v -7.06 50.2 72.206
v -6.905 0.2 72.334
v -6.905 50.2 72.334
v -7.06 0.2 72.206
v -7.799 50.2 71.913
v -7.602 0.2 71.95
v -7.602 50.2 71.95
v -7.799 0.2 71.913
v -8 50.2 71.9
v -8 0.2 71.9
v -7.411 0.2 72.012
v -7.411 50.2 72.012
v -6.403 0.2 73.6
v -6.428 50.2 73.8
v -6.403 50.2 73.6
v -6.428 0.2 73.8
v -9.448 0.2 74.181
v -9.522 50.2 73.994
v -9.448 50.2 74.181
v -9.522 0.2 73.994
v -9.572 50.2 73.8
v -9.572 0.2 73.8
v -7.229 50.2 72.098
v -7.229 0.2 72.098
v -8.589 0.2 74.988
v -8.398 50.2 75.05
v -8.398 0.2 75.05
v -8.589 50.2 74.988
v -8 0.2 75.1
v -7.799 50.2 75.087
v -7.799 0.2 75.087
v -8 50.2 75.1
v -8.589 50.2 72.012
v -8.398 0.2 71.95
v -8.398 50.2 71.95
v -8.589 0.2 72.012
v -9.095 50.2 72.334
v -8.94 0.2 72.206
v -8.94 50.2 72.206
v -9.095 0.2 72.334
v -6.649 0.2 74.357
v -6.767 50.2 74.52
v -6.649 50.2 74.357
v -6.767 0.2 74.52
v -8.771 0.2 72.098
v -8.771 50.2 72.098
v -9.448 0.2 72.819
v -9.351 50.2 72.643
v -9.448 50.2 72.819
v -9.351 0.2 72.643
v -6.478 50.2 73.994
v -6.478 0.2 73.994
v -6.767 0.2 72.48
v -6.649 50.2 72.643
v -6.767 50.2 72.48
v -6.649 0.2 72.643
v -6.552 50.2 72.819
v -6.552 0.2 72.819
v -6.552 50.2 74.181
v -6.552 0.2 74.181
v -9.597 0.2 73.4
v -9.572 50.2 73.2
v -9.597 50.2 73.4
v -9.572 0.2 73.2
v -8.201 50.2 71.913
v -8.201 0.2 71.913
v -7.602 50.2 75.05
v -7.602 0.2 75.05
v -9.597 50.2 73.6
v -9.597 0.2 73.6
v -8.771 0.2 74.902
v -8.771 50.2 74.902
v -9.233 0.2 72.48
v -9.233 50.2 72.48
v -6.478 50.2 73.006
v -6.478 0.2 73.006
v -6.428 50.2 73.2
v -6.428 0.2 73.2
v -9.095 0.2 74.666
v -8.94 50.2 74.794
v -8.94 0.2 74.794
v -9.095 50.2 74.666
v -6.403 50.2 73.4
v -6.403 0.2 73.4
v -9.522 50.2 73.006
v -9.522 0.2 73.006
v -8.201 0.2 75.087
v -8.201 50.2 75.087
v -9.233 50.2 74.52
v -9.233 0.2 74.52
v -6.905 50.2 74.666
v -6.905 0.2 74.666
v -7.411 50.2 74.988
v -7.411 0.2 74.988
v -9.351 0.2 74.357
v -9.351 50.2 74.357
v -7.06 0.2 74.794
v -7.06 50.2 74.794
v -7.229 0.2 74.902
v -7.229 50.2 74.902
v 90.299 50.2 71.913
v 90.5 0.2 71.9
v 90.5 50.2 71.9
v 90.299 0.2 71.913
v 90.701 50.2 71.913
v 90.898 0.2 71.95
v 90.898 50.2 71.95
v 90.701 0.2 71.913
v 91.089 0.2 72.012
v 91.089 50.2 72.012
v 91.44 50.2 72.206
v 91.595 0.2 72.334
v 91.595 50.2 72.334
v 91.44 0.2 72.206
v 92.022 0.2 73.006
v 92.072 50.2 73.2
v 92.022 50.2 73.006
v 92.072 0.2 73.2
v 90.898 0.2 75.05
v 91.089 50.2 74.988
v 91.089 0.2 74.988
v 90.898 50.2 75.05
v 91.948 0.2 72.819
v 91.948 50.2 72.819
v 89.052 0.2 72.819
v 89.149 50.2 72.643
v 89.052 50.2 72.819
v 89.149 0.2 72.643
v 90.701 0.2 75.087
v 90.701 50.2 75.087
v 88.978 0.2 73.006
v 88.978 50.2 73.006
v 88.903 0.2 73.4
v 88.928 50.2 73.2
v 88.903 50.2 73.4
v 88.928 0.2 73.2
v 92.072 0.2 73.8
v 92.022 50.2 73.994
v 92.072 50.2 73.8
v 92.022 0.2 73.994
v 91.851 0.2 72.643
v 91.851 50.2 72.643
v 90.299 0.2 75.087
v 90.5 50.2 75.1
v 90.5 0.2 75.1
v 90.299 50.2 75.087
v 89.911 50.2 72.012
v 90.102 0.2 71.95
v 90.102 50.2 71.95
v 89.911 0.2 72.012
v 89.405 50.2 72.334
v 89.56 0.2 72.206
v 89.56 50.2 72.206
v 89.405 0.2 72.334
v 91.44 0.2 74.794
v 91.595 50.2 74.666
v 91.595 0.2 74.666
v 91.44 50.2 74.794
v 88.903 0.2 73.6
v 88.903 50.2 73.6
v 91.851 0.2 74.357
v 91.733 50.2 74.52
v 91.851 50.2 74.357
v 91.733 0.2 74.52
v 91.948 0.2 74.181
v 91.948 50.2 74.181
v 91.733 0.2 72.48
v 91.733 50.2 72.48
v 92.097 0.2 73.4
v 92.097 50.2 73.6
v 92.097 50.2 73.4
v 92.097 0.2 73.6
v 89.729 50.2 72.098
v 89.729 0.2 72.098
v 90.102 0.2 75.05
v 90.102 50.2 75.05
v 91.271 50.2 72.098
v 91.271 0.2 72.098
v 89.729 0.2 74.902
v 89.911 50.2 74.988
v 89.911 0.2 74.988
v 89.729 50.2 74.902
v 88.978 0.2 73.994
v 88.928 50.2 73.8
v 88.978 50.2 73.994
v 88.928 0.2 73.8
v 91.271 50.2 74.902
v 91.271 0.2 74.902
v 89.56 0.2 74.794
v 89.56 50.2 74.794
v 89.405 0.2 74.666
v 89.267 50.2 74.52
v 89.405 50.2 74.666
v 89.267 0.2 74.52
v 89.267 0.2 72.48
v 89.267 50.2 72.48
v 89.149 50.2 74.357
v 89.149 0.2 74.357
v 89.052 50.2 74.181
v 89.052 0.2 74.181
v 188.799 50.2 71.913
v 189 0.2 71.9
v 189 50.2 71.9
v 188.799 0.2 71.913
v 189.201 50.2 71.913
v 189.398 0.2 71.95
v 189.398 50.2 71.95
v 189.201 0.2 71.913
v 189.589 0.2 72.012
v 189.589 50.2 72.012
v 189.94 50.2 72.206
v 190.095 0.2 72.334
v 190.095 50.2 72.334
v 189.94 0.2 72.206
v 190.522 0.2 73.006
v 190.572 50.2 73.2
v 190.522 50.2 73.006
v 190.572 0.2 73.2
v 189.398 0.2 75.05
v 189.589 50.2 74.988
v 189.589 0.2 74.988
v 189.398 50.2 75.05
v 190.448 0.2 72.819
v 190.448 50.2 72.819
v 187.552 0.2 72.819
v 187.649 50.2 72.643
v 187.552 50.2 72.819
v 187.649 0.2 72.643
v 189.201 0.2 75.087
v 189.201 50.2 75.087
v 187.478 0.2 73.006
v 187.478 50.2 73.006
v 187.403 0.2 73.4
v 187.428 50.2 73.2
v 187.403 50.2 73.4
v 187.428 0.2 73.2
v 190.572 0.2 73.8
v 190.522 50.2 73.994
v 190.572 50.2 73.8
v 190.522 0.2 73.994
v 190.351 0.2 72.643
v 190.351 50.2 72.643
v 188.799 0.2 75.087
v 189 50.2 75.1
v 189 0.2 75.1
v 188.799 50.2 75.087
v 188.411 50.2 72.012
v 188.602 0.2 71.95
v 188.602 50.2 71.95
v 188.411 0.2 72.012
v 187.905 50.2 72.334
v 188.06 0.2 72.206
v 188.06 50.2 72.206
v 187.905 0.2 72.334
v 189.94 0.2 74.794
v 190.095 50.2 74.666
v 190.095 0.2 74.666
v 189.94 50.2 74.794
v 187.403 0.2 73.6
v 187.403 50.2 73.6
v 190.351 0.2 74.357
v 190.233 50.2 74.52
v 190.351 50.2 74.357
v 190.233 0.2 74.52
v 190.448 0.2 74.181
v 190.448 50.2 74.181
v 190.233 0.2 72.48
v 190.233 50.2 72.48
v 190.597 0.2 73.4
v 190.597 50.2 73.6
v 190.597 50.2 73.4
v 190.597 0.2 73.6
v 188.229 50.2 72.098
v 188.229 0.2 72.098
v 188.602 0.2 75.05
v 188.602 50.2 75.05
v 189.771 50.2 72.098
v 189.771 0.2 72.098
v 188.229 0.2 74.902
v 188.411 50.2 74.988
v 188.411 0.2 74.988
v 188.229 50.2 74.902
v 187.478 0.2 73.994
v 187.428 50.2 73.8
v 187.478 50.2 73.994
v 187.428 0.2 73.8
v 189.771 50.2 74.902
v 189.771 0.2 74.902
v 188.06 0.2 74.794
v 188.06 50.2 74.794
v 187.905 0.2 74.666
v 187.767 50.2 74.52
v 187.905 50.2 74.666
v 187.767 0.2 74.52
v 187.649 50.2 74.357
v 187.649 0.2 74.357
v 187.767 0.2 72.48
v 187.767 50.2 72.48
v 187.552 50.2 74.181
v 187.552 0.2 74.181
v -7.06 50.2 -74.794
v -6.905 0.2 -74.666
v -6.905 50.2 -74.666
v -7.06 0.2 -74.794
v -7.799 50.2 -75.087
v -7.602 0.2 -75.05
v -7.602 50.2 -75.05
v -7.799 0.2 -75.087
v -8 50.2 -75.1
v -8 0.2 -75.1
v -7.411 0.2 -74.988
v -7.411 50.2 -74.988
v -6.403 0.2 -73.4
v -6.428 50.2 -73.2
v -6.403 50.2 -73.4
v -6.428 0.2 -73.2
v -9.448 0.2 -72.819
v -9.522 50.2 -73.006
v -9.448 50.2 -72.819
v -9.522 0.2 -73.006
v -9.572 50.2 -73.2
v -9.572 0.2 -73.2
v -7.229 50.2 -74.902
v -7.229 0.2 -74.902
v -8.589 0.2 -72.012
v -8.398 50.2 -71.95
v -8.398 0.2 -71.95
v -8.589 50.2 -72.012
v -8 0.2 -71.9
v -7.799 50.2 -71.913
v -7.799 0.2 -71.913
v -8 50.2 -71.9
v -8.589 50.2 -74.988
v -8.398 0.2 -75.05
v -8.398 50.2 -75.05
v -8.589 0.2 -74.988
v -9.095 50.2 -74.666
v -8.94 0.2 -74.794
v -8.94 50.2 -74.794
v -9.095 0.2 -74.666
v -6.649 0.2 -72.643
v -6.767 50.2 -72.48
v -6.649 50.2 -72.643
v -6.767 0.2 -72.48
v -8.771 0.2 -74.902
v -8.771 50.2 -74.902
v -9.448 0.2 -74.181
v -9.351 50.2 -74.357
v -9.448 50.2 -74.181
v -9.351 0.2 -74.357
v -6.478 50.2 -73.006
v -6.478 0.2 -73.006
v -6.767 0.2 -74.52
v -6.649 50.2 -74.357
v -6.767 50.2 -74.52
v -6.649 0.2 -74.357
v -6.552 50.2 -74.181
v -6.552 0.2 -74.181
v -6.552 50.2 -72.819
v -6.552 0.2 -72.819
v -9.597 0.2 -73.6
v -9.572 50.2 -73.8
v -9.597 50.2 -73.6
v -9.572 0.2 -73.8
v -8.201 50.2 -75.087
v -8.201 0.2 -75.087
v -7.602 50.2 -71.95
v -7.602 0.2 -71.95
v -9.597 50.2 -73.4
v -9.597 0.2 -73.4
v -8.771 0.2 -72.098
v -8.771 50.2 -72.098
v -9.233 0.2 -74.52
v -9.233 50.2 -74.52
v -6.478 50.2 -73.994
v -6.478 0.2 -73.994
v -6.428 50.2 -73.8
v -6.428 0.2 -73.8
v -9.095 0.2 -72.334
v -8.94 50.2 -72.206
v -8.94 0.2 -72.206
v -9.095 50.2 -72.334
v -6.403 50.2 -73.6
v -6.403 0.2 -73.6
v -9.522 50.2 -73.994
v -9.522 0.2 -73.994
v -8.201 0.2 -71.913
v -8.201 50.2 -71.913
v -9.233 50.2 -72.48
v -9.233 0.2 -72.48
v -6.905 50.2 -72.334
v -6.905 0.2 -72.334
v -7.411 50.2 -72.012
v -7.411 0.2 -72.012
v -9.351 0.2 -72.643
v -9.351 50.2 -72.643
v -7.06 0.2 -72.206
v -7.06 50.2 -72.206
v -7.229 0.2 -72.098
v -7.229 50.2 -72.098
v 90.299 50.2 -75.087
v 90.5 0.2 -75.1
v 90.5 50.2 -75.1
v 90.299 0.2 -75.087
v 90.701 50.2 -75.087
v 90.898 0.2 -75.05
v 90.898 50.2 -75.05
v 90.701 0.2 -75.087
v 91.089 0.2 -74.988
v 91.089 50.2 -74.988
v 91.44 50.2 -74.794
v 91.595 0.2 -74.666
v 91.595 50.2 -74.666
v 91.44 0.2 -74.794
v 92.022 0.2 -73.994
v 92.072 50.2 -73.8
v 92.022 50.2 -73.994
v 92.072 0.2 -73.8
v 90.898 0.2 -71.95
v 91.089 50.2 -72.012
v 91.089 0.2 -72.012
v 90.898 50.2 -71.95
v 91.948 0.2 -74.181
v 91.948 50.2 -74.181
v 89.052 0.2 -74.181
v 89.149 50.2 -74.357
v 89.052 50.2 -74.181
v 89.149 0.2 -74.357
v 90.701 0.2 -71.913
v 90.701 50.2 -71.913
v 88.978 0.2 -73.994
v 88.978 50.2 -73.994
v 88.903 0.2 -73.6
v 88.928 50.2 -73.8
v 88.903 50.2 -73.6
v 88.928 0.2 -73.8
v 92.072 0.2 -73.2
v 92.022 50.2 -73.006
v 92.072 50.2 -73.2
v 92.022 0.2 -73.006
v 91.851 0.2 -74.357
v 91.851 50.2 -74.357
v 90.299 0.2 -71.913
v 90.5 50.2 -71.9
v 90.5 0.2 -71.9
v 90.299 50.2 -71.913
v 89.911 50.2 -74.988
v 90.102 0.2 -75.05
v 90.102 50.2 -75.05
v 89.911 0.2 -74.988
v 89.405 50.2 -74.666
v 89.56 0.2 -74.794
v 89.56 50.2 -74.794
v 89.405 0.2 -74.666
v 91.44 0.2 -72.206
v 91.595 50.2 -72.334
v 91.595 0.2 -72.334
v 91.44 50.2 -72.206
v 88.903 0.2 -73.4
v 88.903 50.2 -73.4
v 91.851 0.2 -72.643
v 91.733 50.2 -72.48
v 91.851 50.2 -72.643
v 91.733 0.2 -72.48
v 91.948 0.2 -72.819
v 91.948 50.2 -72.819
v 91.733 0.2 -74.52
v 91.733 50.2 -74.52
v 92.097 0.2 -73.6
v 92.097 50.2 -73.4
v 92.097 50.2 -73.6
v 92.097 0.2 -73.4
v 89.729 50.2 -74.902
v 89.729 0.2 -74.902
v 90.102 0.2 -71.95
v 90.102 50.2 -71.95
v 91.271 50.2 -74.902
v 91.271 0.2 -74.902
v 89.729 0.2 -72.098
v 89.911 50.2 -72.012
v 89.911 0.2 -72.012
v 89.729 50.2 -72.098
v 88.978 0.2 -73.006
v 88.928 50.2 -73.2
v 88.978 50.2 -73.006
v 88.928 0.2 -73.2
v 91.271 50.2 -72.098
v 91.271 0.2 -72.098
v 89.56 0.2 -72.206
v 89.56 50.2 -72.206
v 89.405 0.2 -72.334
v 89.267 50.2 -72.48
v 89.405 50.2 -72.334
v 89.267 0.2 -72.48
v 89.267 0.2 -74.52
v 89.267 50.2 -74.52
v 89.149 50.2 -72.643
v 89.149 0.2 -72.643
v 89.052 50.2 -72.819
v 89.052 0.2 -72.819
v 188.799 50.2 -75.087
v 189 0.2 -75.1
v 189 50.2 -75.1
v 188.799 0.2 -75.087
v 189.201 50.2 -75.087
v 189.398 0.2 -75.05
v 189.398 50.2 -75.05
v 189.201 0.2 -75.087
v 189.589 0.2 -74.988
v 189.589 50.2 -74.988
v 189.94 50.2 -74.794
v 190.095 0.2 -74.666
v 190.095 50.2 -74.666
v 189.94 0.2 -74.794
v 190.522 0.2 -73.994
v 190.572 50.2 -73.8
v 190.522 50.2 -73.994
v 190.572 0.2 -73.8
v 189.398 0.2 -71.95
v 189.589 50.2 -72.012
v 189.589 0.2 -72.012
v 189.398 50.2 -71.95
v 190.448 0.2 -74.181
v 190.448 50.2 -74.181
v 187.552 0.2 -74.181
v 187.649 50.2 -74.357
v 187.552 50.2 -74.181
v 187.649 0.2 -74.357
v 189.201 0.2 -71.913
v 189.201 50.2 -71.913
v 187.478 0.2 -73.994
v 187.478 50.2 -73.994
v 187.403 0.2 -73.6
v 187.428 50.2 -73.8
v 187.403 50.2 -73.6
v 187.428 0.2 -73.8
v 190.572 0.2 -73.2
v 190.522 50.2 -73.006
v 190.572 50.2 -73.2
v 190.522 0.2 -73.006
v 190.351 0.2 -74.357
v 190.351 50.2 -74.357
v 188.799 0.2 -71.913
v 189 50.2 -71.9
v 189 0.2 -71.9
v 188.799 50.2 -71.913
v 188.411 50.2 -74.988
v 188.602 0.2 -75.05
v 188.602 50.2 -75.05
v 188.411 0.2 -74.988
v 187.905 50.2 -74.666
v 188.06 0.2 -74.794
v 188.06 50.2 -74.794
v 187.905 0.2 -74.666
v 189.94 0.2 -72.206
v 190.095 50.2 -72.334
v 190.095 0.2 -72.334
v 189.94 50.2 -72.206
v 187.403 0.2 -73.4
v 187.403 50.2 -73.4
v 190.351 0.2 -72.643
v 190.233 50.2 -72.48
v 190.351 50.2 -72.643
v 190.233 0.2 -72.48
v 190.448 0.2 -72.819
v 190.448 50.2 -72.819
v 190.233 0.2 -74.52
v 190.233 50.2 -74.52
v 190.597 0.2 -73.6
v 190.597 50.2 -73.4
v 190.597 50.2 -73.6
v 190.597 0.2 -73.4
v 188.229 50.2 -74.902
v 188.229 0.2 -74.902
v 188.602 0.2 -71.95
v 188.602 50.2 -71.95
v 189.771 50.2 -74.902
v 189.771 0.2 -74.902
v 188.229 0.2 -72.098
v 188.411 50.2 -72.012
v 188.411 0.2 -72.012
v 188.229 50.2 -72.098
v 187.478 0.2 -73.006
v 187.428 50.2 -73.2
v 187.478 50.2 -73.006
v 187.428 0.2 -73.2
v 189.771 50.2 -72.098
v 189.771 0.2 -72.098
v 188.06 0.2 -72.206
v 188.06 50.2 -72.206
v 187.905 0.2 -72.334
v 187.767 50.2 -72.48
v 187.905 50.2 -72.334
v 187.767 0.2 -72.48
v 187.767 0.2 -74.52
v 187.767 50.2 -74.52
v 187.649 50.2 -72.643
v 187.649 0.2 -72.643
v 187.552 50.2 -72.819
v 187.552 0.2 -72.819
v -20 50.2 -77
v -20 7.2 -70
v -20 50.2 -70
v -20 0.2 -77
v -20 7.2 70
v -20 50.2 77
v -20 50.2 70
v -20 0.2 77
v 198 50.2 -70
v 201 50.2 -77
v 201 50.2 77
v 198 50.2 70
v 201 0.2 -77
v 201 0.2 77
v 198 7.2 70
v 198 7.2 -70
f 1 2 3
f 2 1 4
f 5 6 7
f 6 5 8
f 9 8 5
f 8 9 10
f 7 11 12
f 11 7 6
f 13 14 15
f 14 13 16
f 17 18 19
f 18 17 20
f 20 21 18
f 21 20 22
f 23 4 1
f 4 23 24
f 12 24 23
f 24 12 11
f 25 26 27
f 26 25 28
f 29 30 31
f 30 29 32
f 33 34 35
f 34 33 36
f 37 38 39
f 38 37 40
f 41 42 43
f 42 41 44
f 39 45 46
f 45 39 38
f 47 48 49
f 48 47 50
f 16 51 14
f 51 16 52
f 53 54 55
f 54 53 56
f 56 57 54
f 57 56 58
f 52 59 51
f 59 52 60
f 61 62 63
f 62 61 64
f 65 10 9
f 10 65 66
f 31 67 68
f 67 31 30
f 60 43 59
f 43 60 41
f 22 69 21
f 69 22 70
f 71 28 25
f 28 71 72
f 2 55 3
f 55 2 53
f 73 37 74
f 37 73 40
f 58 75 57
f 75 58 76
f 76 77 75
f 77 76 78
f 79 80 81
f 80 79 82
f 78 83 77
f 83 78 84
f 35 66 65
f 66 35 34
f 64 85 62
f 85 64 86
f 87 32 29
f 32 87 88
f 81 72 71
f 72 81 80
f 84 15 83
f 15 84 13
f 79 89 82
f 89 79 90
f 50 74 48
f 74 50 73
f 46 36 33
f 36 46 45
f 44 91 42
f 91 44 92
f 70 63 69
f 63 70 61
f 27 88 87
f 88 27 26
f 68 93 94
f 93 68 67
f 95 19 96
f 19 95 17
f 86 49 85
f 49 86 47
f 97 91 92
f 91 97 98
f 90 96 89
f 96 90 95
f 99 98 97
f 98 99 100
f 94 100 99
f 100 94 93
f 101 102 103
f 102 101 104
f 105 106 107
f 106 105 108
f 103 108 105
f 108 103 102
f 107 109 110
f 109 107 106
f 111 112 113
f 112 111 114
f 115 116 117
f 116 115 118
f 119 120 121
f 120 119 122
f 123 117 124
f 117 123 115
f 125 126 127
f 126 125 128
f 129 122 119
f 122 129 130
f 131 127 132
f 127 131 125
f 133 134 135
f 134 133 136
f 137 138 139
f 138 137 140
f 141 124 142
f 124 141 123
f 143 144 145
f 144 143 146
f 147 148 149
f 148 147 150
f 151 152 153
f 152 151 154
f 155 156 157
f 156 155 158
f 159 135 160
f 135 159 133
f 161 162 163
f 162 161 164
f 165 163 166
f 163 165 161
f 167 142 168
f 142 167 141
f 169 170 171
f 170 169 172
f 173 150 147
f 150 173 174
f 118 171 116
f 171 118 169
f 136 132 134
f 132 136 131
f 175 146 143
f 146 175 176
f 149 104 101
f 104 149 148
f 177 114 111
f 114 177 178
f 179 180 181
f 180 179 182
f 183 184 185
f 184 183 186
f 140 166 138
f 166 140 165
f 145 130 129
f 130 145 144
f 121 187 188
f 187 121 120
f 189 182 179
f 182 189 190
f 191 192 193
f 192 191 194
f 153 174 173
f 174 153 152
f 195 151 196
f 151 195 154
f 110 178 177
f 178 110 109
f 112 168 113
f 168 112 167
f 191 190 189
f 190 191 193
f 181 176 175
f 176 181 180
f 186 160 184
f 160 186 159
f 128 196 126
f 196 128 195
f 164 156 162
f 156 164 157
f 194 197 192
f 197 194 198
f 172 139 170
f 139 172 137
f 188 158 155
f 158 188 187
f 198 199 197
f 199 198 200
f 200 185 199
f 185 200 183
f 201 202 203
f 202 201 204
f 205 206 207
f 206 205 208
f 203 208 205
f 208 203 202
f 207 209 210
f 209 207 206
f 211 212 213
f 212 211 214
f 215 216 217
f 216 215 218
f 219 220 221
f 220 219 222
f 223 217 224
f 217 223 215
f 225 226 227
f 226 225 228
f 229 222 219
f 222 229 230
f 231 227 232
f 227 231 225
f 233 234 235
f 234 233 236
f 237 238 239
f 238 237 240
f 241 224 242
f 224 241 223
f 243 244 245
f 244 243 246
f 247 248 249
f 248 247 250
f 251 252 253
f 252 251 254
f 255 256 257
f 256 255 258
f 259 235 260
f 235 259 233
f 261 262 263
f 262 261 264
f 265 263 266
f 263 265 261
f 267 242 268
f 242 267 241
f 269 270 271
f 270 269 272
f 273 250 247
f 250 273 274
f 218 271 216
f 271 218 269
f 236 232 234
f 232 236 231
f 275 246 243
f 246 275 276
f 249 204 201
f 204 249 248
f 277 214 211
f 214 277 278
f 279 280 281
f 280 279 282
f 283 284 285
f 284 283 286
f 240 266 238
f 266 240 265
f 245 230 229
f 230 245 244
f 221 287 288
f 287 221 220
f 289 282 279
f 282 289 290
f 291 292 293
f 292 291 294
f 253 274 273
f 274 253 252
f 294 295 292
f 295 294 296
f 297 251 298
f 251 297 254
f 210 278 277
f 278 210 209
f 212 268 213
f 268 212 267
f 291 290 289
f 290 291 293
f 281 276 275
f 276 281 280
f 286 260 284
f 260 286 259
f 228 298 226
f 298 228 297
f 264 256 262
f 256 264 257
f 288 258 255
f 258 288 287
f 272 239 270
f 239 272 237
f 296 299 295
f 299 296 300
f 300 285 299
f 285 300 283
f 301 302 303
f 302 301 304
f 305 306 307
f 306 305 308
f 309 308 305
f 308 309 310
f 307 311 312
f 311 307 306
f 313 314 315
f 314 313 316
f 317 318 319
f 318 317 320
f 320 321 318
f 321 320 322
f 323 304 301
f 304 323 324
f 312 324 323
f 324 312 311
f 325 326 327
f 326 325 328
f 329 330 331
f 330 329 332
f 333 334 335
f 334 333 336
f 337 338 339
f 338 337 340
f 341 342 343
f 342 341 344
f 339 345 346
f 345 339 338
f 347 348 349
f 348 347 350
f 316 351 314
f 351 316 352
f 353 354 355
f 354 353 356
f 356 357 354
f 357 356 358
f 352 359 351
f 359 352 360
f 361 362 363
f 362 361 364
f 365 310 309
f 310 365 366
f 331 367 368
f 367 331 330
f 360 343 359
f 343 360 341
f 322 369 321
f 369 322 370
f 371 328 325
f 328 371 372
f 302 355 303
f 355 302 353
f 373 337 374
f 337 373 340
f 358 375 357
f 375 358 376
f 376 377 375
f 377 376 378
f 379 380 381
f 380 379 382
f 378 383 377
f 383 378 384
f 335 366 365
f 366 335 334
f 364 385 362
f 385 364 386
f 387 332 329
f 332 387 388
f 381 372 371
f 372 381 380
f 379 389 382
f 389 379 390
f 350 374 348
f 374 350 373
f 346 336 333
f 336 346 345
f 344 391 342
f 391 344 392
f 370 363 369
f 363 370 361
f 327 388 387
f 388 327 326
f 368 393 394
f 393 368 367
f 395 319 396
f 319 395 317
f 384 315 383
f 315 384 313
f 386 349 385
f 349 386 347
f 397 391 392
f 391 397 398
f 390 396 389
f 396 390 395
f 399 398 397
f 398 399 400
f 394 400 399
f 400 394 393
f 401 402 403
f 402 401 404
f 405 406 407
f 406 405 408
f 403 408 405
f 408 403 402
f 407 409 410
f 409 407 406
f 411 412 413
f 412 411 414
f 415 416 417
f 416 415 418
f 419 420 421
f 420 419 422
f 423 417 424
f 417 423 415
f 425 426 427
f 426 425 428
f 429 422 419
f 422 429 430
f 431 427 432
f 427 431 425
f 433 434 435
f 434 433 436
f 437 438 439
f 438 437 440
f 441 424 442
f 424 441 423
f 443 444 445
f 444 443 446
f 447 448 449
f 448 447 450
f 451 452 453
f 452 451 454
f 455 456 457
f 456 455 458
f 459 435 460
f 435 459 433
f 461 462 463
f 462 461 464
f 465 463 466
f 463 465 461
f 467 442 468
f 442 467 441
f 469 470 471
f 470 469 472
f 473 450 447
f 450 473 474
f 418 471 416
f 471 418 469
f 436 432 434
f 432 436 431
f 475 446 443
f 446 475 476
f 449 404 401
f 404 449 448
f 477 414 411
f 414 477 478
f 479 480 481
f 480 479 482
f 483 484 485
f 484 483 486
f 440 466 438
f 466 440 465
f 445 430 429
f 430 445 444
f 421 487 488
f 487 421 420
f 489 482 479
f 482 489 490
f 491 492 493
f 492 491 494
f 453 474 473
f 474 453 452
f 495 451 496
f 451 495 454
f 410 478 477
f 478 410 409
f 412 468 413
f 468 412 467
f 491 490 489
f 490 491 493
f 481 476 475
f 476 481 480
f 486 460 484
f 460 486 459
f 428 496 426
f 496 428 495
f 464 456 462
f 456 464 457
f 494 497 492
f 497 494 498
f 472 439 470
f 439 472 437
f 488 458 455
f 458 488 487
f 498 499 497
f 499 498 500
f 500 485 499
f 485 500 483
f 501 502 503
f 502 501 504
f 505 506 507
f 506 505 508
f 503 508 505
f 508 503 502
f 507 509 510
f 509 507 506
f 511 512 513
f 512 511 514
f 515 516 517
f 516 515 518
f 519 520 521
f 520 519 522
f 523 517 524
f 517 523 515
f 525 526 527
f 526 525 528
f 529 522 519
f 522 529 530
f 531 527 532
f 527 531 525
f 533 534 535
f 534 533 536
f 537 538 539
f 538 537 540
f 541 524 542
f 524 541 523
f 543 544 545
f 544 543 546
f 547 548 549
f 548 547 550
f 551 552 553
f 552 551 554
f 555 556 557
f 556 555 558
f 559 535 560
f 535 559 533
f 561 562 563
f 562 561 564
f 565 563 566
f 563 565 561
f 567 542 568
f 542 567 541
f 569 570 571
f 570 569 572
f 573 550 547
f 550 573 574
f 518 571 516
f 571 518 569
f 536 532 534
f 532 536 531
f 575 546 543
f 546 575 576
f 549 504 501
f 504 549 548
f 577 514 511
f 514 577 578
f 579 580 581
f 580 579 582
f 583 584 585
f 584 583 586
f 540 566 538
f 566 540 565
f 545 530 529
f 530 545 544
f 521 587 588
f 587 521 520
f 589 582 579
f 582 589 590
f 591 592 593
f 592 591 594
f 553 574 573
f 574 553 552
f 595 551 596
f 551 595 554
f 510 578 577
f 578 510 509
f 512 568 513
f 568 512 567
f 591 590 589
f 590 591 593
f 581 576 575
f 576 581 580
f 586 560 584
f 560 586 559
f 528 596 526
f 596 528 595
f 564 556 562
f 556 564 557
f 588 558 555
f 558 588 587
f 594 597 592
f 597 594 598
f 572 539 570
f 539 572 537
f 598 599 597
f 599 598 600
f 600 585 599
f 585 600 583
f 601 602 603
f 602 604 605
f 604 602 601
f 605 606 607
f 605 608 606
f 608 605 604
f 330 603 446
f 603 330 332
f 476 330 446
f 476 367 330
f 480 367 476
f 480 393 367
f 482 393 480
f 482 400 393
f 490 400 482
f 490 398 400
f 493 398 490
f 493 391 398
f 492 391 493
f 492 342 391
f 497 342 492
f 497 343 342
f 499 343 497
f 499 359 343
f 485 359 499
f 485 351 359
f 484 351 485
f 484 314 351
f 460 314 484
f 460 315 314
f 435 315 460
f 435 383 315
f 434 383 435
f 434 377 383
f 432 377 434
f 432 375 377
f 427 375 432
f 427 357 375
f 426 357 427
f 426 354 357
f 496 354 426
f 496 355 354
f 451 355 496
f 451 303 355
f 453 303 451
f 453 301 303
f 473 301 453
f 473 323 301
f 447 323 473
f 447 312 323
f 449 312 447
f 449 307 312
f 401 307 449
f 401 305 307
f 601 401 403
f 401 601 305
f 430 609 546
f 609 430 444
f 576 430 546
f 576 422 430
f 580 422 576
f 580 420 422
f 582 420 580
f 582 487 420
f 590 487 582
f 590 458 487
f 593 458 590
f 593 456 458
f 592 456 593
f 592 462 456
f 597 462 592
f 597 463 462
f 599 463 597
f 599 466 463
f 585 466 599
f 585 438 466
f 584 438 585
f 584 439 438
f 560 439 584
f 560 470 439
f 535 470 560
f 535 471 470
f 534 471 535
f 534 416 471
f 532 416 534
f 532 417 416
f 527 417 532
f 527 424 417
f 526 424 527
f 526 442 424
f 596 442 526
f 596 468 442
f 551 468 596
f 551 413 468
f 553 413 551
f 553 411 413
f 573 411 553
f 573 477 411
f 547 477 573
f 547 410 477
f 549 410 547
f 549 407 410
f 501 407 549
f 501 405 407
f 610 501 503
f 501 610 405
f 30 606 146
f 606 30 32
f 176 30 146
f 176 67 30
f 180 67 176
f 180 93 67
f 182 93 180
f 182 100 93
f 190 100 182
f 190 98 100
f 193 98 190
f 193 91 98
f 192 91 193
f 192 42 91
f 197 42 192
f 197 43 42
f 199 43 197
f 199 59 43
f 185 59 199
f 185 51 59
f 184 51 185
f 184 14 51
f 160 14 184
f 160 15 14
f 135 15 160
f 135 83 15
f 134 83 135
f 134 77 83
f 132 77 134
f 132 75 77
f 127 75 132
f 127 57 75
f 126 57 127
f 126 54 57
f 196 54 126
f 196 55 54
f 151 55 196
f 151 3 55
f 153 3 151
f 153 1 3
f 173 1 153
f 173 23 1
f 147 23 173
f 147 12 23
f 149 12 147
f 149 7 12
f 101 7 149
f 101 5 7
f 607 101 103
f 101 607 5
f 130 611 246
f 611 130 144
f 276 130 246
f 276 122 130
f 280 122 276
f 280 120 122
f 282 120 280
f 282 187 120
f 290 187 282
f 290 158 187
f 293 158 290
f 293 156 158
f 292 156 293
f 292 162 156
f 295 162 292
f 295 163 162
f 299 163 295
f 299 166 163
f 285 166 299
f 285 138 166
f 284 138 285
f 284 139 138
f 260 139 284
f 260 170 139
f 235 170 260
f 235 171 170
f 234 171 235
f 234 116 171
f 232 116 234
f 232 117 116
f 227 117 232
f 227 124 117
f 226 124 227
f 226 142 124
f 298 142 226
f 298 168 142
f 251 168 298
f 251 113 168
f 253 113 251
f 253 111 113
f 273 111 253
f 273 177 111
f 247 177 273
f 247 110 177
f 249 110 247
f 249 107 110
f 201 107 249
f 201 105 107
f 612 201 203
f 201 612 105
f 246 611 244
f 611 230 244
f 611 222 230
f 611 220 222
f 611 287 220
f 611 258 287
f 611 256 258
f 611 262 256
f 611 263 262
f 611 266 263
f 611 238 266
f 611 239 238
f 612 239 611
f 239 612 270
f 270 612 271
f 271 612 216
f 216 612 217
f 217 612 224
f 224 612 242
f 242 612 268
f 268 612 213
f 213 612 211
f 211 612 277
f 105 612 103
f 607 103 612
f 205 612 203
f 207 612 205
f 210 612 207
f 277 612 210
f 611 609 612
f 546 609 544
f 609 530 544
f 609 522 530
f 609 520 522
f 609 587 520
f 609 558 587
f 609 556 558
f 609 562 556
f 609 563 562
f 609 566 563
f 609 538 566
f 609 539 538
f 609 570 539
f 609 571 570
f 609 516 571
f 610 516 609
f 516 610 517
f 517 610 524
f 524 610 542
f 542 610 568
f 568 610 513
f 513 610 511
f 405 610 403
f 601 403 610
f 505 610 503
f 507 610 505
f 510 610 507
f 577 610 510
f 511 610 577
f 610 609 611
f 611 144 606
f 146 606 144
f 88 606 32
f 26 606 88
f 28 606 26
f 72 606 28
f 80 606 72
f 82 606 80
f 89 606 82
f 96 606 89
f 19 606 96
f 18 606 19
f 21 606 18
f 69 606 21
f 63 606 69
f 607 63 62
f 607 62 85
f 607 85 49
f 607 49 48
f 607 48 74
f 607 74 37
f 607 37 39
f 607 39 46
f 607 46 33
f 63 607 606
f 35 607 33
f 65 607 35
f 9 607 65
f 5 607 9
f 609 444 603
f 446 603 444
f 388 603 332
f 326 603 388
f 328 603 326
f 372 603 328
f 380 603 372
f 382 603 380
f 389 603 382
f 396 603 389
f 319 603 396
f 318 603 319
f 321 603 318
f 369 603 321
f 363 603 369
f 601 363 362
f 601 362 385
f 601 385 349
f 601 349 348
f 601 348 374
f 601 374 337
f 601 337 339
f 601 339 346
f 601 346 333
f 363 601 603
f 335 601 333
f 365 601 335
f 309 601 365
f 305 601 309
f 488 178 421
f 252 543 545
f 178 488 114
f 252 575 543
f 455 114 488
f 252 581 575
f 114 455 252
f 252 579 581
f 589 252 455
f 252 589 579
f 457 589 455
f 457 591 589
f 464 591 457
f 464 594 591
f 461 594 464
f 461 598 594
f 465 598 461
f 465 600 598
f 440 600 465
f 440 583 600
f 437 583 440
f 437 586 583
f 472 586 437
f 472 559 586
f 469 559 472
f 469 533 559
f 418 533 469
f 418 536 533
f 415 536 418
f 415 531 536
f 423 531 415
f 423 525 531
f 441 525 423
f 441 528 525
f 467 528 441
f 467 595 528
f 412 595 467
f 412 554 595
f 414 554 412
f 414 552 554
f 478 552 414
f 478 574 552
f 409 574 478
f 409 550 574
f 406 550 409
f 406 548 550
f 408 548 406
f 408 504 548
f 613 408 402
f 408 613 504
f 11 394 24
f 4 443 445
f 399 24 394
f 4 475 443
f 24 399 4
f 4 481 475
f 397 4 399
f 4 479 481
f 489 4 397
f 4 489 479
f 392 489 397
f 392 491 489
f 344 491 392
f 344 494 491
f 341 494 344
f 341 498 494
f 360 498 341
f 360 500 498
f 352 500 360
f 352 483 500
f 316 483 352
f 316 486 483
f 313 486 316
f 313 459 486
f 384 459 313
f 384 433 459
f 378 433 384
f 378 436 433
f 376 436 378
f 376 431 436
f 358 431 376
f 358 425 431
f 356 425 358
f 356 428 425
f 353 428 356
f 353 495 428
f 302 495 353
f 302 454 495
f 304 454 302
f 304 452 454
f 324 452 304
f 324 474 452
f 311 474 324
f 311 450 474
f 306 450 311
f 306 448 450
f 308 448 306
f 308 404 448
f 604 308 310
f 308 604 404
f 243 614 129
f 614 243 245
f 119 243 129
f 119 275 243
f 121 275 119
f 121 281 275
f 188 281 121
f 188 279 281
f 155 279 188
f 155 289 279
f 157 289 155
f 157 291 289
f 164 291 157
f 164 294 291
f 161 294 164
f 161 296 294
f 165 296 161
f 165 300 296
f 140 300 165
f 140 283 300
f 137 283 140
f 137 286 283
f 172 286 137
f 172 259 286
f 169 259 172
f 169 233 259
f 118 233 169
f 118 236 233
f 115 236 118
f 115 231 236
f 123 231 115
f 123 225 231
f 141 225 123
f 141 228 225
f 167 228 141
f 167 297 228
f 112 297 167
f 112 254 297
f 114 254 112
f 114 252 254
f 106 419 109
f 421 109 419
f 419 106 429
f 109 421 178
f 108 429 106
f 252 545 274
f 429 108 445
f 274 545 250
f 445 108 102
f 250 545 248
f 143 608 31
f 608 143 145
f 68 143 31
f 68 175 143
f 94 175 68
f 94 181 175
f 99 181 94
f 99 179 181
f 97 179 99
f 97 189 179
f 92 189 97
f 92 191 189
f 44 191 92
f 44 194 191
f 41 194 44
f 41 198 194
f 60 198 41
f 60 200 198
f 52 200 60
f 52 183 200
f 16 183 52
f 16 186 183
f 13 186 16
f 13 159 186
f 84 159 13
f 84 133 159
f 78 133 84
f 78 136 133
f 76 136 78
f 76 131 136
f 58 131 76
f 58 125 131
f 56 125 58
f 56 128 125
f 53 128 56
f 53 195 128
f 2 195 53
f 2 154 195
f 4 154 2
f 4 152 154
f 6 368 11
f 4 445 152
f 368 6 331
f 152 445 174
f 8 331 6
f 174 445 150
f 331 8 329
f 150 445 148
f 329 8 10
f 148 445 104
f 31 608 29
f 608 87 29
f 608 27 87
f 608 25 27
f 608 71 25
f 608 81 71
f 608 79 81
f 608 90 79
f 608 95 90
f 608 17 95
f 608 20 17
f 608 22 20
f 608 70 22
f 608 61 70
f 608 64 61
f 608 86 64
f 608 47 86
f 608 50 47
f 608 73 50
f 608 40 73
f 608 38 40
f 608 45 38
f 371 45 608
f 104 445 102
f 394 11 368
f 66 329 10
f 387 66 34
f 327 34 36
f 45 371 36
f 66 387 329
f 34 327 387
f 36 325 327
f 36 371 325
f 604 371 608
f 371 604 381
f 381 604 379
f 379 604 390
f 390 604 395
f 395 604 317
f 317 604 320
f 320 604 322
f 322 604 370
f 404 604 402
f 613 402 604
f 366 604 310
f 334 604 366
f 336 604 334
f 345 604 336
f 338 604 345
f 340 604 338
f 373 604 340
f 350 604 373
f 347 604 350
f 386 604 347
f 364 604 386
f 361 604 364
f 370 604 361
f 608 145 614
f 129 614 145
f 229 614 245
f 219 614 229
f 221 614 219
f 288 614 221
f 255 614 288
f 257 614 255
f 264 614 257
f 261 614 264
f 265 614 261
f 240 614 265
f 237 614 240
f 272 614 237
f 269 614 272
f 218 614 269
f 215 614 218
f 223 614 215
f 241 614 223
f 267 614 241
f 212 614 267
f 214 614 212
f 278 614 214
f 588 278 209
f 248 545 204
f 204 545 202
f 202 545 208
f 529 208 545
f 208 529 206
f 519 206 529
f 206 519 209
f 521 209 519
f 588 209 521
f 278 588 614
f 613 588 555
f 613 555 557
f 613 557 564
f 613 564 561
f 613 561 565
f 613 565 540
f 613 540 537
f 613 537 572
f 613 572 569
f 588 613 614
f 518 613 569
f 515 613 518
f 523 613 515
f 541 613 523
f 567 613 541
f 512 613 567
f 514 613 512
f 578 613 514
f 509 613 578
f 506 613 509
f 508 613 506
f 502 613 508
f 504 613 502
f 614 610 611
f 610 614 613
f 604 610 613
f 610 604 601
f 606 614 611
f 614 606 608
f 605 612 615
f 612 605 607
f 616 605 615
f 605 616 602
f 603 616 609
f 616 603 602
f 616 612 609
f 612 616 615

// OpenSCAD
// --- PARAMÈTRES ---
$fn = 50;

// 1. DIMENSIONS EXACTES (Vos réglages validés)
pcb_w = 130.0;
pcb_h = 80.0;

// Positions exactes centres des 4 trous STM32 : 3.8 mm des bords G/D et 4 mm des bords H/B
hole_x   = (pcb_w / 2) - 3.8;   // = 65 - 3.8 = 61.2
pos_y_top = (pcb_h / 2) - 4.0;  // = 40 - 4 = 36
pos_y_bot = -((pcb_h / 2) - 4.0); // = -36

// LCD secondaire (infos places + météo/CO2)
lcd2_w = 98.0;
lcd2_h = 60.0;
lcd2_depth = 22.0;

lcd2_clearance = 0.4;     // jeu par côté
lcd2_frame_wall = 2.0;    // épaisseur du cadre de maintien
lcd2_ext_margin = 6.0;    // marge autour dans l’extension
lcd2_gap = 5.0;           // distance entre haut de plaque STM32 et fenêtre LCD2

mount_side = 7.0;   // +7 mm à gauche et +7 mm à droite pour zone de vissage arrière

// 2. ÉCRAN
screen_w = 105.0;
screen_h = 67.0;
screen_offset_y = 3.0; 

// 3. PARAMÈTRES DU STAND VERTICAL
plate_margin = 5.0; 
plate_thick = 3.0;  
spacer_h = 6.0;     
tilt_angle = 15;    // Inclinaison en arrière (degrés)
foot_depth = 60;    // Profondeur du pied

// Dimensions RFID RC522
pcb_width = 40;
pcb_height = 60;
hole_dist_x = 33; 
hole_dist_y = 54;
pcb_thickness = 1.6;

// Paramètres du boîtier
angle = 20;
wall_thick = 3.0;       // Épaisseur des murs extérieurs
front_layer = 0.8;      // Épaisseur de la façade (FIN pour bien capter !)
internal_depth = 15;    // Place pour les composants et les fils
cable_slot_w = 21.3;    // Largeur du trou pour les câbles


// --- MODULE PRINCIPAL (RFID) ---
module rfid_console_embedded() {
    
    // Dimensions totales du bloc
    box_w = pcb_width + (wall_thick * 2) + 4; // +4mm de marge
    box_h = pcb_height + (wall_thick * 2) + 4;
    box_d = internal_depth + front_layer + wall_thick; // Profondeur totale locale
    
    difference() {
        // 1. LE VOLUME EXTÉRIEUR (Le Pupitre)
        hull() {
            translate([0, 0, sin(angle)*box_h/2]) 
            rotate([angle, 0, 0])
                cube([box_w, box_h, box_d], center=true);

            translate([0, 20, -10])
                cube([box_w, 60, 2], center=true);
        }

        // 2. L'ÉVIDEMENT INTERNE (LA POCHE)
        translate([0, 0, sin(angle)*box_h/2]) 
        rotate([angle, 0, 0]) {
            translate([0, 0, front_layer+10+6.5]) 
                cube([pcb_width + 2, pcb_height + 2, box_d], center=true);

            translate([1.6, box_h/2 - 5+2, 0+5+5.4])
                cube([cable_slot_w, 10, 9], center=true);
        }

        // 3. TROU ARRIÈRE GLOBAL
        translate([0, 20, -4]) cube([box_w - 6, 90, 30], center=true);

        // 4. TROUS DE FIXATION TRAVERSANTS + POCHES ECROUS
        translate([0, 0, sin(angle)*box_h/2]) 
        rotate([angle, 0, 0]) {

            xL = -pcb_width/2;
            xR =  pcb_width/2;
            yB = -pcb_height/2;
            yT =  pcb_height/2;

            // ---- TROUS M3 PASSANTS ----
            translate([xL + 7.0,  yB + 6.8, 0])
                cylinder(d=3.2, h=box_d + 5, center=false);

            translate([xR - 7.0,  yB + 6.8, 0])
                cylinder(d=3.2, h=box_d + 5, center=false);

            translate([xR - 2.0,  yT - 15.0, -10])
                cylinder(d=3.2, h=box_d + 5, center=false);

            translate([xL + 2.5,  yT - 15.0, -10])
                cylinder(d=3.2, h=box_d + 5, center=false);

            // ---- POCHES POUR ECROUS ----
            nut_pocket_xy = 10;
            nut_pocket_z  = 6;
            nut_pocket_zc = -box_d/2 + 2;

            translate([xL + 7.0,  yB + 6.8, nut_pocket_zc+12])
                cube([nut_pocket_xy, nut_pocket_xy, nut_pocket_z], center=true);

            translate([xR - 7.0,  yB + 6.8, nut_pocket_zc+12])
                cube([nut_pocket_xy, nut_pocket_xy, nut_pocket_z], center=true);

            translate([xR - 2.0,  yT - 15.0, nut_pocket_zc])
                cube([nut_pocket_xy, nut_pocket_xy, nut_pocket_z], center=true);

            translate([xL + 2.5,  yT - 15.0, nut_pocket_zc])
                cube([nut_pocket_xy, nut_pocket_xy, nut_pocket_z], center=true);
        }
    }
}


// --- MODULE 1 : LA FAÇADE COMPLÈTE (Plaque + Trous + Piliers) ---
module head_assembly() {

    // Jeu (par côté) pour insertion
    screen_clearance = 0.4;

    // Écran principal : cadre arrière
    screen_depth = 5.0;
    screen_frame_wall = 2.0;

    // Centre découpe écran principal (coin sup droit : 12 mm du bord droit, 6 mm du bord haut)
    screen_cx = (pcb_w/2) - (screen_w/2) - 12;
    screen_cy = (pcb_h/2) - (screen_h/2) - 6;

    // LCD2 : fenêtre visible (97x40) + rebord intérieur 5mm
    lcd2_screen_w = 97.0;
    lcd2_screen_h = 40.0;

    // Placement fenêtre visible LCD2 : coin inférieur gauche à 0.5 mm du bord gauche et 9 mm du bas
    lcd2_screen_off_left = 0.5;
    lcd2_screen_off_bottom = 9.0;

    // Trous LCD2 (M3) : centre à 2.5 mm du bord gauche/droit et 2 mm du bas/haut
    lcd2_hole_off_x = 2.5;
    lcd2_hole_off_y = 2.0;
    lcd2_hole_d = 3.5;

    // Dimensions plaque (élargie)
    plate_w_base = pcb_w + 2*plate_margin;
    plate_w      = plate_w_base + 2*mount_side;
    plate_h      = pcb_h + 2*plate_margin;

    plate_top = (pcb_h/2) + plate_margin;
    lcd2_cx = 0;
    lcd2_cy = plate_top + lcd2_gap + (lcd2_h/2);

    // Extension LCD2 : même largeur que la plaque STM32
    ext_w = plate_w;
    ext_h = lcd2_h + 2*lcd2_ext_margin;

    // Vis boitier avant <-> arrière
    case_screw_d    = 3.2;
    case_screw_edge = 12.0;
    case_screw_x = (plate_w/2) - (mount_side/2);

    case_screw_y1 = -(plate_h/2) + case_screw_edge - 60;
    case_screw_y3 = (lcd2_cy + ext_h/2) - case_screw_edge;
    case_screw_y2 = (case_screw_y1 + case_screw_y3) / 2;

    // Bords LCD2
    lcd2_xL = lcd2_cx - lcd2_w/2;
    lcd2_xR = lcd2_cx + lcd2_w/2;
    lcd2_yB = lcd2_cy - lcd2_h/2;
    lcd2_yT = lcd2_cy + lcd2_h/2;

    // Centre fenêtre visible LCD2
    lcd2_screen_cx = lcd2_xL + lcd2_screen_off_left + (lcd2_screen_w/2);
    lcd2_screen_cy = lcd2_yB + lcd2_screen_off_bottom + (lcd2_screen_h/2);

    // Rebord intérieur LCD2
    lcd2_screen_depth = 5.0;
    lcd2_screen_frame_wall = 2.0;

    union() {

        // A. Plaque + découpes
        difference() {

            union() {
                // Corps principal (STM32)
                translate([0, 0, plate_thick/2])
                    cube([plate_w, plate_h, plate_thick], center=true);

                // Extension LCD2
                translate([lcd2_cx, lcd2_cy, plate_thick/2])
                    cube([ext_w, ext_h, plate_thick], center=true);

                // Pattes latérales descendantes
                total_h = plate_h + (lcd2_gap + lcd2_h + 2*lcd2_ext_margin + 53);

                for (sx = [-1, 1]) {
                    translate([sx * (plate_w/2 - mount_side/2), (lcd2_cy - ext_h/2)/2 - 17, plate_thick/2])
                        cube([mount_side, total_h, plate_thick], center=true);
                }
            }

            // Découpe écran principal
            translate([screen_cx, screen_cy, 0])
                cube([screen_w + 2*screen_clearance,
                      screen_h + 2*screen_clearance,
                      plate_thick + 10], center=true);

            // Fenêtre LCD2
            translate([lcd2_screen_cx, lcd2_screen_cy, 0])
                cube([lcd2_screen_w + 2*screen_clearance,
                      lcd2_screen_h + 2*screen_clearance,
                      plate_thick + 10], center=true);

            // Trous fixation STM32 (M3)
            for (sx = [-1, 1]) for (sy = [-1, 1]) {
                translate([ sx * (pcb_w/2 - 3.8),  sy * (pcb_h/2 - 4.0), 0 ])
                    cylinder(d=3.5, h=20, center=true);
            }

            // Trous fixation LCD2 (M3)
            for (hx = [lcd2_xL + lcd2_hole_off_x, lcd2_xR - lcd2_hole_off_x])
            for (hy = [lcd2_yB + lcd2_hole_off_y, lcd2_yT - lcd2_hole_off_y]) {
                translate([hx, hy, 0])
                    cylinder(d=lcd2_hole_d, h=20, center=true);
            }

            // Trous boitier avant/arrière (6x M3)
            for (sx = [-1, 1])
            for (yy = [case_screw_y1, case_screw_y2, case_screw_y3]) {
                translate([sx * case_screw_x, yy, 0])
                    cylinder(d=case_screw_d, h=30, center=true);
            }
        }

        // B. Cadre arrière écran principal (5 mm)
        translate([screen_cx, screen_cy, plate_thick + screen_depth/2])
        difference() {
            cube([(screen_w + 2*screen_clearance) + 2*screen_frame_wall,
                  (screen_h + 2*screen_clearance) + 2*screen_frame_wall,
                  screen_depth], center=true);

            cube([(screen_w + 2*screen_clearance),
                  (screen_h + 2*screen_clearance),
                  screen_depth + 0.2], center=true);
        }

        // C. Rebord intérieur LCD2 (5 mm)
        translate([lcd2_screen_cx, lcd2_screen_cy, plate_thick + lcd2_screen_depth/2])
        difference() {
            cube([(lcd2_screen_w + 2*screen_clearance) + 2*lcd2_screen_frame_wall,
                  (lcd2_screen_h + 2*screen_clearance) + 2*lcd2_screen_frame_wall,
                  lcd2_screen_depth], center=true);

            cube([(lcd2_screen_w + 2*screen_clearance),
                  (lcd2_screen_h + 2*screen_clearance),
                  lcd2_screen_depth + 0.2], center=true);
        }

        // C2. Piliers LCD2
        lcd2_standoff_d = 7.0;
        lcd2_standoff_h = 8.0;
        lcd2_standoff_hole_d = 3.2;

        for (hx = [lcd2_xL + lcd2_hole_off_x, lcd2_xR - lcd2_hole_off_x])
        for (hy = [lcd2_yB + lcd2_hole_off_y, lcd2_yT - lcd2_hole_off_y]) {
            translate([hx, hy, plate_thick + lcd2_standoff_h/2])
            difference() {
                cylinder(d=lcd2_standoff_d, h=lcd2_standoff_h, center=true);
                cylinder(d=lcd2_standoff_hole_d, h=lcd2_standoff_h + 2, center=true);
            }
        }

        // D. Piliers STM32
        translate([0, 0, plate_thick]) {
            for (dir_x = [-1, 1]) {
                translate([dir_x * hole_x, pos_y_top, 0]) standoff_pillar();
                translate([dir_x * hole_x, pos_y_bot, 0]) standoff_pillar();
            }
        }
    }
}

module standoff_pillar() {
    difference() {
        cylinder(d=7.0, h=spacer_h+2);
        translate([0,0,-1])
            cylinder(d=3.2, h=spacer_h + 4);
    }
}


// --- MODULE 2 : ASSEMBLAGE FINAL (Avec le pied) ---
module vertical_stand() {
    total_h_plate = pcb_h + plate_margin*2;
    difference(){
        union() {
            // 1. La Tête (Inclinée)
            translate([0, 0, (total_h_plate/2) * sin(tilt_angle) + 2])
                translate([0, total_h_plate/2+60, -13.7])
                    head_assembly();

            // 2. Le Pied
            translate([0, foot_depth/2 - 10 + 10, plate_thick/2])
                cube([pcb_w + plate_margin*2, foot_depth, plate_thick], center=true);

            // 3. Renforts sur les cotés
            for(mx = [-1, 1]) {
                translate([mx * ((pcb_w/2) + plate_margin - 1.5)-1.5, 0, plate_thick])
                rotate([90, 0, 90])
                linear_extrude(3)
                polygon([[0,0],[foot_depth - 5 + 20, 0],[0, 50]]);
            }
        }
        rotate([0, 0, 0]) translate([-12.3, 34+6.4, -5]) cube([15+6.35, 11, 10]);
    }
}


// --- BOITIER ARRIERE ---
module face_arriere() {

    case_wall   = 7.0;
    rear_depth  = 50.0;
    open_bottom = 55.0;

    plate_w_base = pcb_w + 2*plate_margin;
    plate_w      = plate_w_base + 2*mount_side;
    plate_h      = pcb_h + 2*plate_margin;

    plate_top = (pcb_h/2) + plate_margin;
    lcd2_cx   = 0;
    lcd2_cy   = plate_top + lcd2_gap + (lcd2_h/2);

    ext_w = plate_w;
    ext_h = lcd2_h + 2*lcd2_ext_margin;

    case_screw_d    = 3.2;
    case_screw_edge = 12.0;
    case_screw_x    = (plate_w/2) - (mount_side/2);

    case_screw_y1 = -(plate_h/2) + case_screw_edge - 60;
    case_screw_y3 = (lcd2_cy + ext_h/2) - case_screw_edge;
    case_screw_y2 = (case_screw_y1 + case_screw_y3) / 2;

    z0 = plate_thick;

    y_leg_center = (lcd2_cy - ext_h/2)/2 - 17;
    total_h      = plate_h + (lcd2_gap + lcd2_h + 2*lcd2_ext_margin + 53);
    y_bottom_all = y_leg_center - total_h/2;

    difference() {
        hull() {
            translate([0, 0, z0 + rear_depth/2])
                cube([plate_w, plate_h, rear_depth], center=true);

            translate([lcd2_cx, lcd2_cy+60, z0 + rear_depth/2])
                cube([ext_w, ext_h, rear_depth], center=true);
        }

        hull() {
            translate([0, 40, z0 + (rear_depth - case_wall)/2])
                cube([plate_w - 2*case_wall, plate_h - 2*case_wall + 190, rear_depth - case_wall], center=true);

            translate([lcd2_cx, lcd2_cy, z0 + (rear_depth - case_wall)/2])
                cube([ext_w - 2*case_wall, ext_h - 2*case_wall, rear_depth - case_wall], center=true);
        }

        translate([0, y_bottom_all + open_bottom/2, z0 + rear_depth/2])
            cube([plate_w + 80, open_bottom, rear_depth + 80], center=true);

        for (sx = [-1, 1])
        for (yy = [case_screw_y1, case_screw_y2, case_screw_y3]) {
            translate([sx * case_screw_x, yy + 60, z0 + rear_depth/2])
                cylinder(d=case_screw_d, h=rear_depth + 20, center=true);
        }
    }
}


// --- RENDU / EXPORT (TOUT DANS LE MEME STL) ---
eps = 0.2; // petit recouvrement pour éviter surfaces coplanaires (fusion plus fiable)

module all_in_one() {
    render(convexity=10)
/*
    union() {

        // structure principale
        rotate([0, 90, 0])
            vertical_stand();

        // pupitre RFID
        rotate([180, 270, 90])
            translate([0, -30, 11])
                rfid_console_embedded();
*/
        // boitier arrière (légèrement "poussé" dans l'avant pour souder)
        rotate([90, 90, 0])
            translate([0, 25 + 0, plate_thick - eps-56])
                face_arriere();

    
}

all_in_one();
